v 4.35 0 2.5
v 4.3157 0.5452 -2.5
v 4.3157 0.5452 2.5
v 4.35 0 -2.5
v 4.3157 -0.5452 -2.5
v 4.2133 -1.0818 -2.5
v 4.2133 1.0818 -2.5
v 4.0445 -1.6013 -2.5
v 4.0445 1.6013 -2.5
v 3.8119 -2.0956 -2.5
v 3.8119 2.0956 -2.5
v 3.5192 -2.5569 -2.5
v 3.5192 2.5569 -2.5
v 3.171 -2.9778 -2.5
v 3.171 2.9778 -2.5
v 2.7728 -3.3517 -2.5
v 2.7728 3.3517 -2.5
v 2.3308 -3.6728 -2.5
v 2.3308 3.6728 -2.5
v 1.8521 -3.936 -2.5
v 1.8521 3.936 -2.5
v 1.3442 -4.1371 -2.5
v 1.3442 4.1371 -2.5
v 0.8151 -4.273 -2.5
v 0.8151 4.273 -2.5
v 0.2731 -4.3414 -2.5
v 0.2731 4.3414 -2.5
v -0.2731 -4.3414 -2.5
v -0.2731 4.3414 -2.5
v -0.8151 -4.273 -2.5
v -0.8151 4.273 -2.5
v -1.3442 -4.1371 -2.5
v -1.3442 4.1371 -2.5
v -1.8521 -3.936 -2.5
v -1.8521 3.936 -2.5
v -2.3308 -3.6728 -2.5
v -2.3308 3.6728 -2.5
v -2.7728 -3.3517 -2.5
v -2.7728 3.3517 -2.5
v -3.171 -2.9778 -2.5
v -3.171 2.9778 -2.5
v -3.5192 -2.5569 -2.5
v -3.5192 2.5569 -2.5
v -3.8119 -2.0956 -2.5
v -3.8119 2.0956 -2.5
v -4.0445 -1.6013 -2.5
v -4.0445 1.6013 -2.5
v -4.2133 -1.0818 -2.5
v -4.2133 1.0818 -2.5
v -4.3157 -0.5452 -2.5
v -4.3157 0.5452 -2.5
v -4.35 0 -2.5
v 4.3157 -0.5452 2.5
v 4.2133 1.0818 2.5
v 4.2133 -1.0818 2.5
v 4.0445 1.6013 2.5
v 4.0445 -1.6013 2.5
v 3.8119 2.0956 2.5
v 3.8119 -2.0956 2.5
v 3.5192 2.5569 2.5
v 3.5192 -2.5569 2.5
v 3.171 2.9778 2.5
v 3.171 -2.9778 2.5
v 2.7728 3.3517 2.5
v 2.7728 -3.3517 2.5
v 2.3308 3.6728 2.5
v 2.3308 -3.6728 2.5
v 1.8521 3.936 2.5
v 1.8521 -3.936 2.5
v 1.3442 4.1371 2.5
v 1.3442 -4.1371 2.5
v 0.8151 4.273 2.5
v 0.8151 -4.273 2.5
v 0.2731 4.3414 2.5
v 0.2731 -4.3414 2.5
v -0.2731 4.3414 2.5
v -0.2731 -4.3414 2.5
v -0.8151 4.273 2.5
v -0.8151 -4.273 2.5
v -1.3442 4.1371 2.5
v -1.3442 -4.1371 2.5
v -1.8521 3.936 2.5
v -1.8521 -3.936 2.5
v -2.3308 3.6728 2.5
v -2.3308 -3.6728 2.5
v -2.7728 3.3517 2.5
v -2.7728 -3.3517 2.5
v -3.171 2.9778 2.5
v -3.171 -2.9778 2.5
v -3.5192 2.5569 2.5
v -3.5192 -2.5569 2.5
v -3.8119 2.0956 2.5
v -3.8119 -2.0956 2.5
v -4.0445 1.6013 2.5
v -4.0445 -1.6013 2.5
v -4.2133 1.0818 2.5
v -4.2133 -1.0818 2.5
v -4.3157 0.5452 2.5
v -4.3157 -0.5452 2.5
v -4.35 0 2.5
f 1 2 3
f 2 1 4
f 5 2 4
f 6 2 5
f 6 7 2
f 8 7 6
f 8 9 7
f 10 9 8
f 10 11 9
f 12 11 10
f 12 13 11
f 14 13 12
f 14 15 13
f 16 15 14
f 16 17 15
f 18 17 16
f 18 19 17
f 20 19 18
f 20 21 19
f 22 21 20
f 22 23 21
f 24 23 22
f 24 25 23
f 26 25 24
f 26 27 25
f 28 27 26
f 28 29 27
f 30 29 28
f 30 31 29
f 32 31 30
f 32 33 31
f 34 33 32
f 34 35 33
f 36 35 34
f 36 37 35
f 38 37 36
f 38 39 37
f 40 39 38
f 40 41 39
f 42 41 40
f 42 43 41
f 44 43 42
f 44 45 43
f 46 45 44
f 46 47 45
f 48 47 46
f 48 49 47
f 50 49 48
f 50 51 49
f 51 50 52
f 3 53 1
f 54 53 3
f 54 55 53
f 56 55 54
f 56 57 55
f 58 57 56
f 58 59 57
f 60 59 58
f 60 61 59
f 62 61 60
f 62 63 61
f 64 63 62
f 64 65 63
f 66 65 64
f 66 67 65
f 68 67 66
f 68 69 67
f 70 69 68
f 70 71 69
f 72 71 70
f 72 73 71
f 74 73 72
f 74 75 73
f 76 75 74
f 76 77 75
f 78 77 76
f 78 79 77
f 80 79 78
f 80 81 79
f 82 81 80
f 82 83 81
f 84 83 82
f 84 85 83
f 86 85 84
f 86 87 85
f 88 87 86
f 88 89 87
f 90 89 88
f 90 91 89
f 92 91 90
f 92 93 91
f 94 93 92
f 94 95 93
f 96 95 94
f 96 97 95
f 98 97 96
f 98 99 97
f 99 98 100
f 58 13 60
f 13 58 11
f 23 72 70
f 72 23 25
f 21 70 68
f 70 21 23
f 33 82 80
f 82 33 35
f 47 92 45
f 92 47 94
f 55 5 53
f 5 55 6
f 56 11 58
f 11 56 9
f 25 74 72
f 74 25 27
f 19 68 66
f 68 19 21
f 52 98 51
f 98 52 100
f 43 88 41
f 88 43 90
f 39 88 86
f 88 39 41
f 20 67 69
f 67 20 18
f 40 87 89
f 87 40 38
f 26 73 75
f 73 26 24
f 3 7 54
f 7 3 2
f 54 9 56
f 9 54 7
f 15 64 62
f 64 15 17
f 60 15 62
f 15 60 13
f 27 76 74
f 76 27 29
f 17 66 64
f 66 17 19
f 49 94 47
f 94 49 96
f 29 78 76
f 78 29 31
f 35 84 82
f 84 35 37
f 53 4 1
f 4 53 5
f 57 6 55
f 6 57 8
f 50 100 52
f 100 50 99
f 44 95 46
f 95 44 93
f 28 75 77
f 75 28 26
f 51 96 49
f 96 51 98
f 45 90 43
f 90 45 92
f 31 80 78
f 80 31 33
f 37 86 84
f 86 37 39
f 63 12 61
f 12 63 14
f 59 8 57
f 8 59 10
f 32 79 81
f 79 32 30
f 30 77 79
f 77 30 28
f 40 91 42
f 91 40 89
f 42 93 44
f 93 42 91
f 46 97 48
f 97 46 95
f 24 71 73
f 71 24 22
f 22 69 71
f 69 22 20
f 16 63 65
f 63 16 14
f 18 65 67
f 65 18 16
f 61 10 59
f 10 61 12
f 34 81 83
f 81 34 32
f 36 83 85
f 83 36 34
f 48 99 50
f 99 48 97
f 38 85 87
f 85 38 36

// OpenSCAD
$fn = 50;


difference() {
	union() {
		translate(v = [0, 0, -2.5000000000]) {
			cylinder(h = 5, r = 4.3500000000);
		}
	}
	union() {
		translate(v = [0, 0, -100.0000000000]) {
			cylinder(h = 200, r = 0);
		}
	}
}
